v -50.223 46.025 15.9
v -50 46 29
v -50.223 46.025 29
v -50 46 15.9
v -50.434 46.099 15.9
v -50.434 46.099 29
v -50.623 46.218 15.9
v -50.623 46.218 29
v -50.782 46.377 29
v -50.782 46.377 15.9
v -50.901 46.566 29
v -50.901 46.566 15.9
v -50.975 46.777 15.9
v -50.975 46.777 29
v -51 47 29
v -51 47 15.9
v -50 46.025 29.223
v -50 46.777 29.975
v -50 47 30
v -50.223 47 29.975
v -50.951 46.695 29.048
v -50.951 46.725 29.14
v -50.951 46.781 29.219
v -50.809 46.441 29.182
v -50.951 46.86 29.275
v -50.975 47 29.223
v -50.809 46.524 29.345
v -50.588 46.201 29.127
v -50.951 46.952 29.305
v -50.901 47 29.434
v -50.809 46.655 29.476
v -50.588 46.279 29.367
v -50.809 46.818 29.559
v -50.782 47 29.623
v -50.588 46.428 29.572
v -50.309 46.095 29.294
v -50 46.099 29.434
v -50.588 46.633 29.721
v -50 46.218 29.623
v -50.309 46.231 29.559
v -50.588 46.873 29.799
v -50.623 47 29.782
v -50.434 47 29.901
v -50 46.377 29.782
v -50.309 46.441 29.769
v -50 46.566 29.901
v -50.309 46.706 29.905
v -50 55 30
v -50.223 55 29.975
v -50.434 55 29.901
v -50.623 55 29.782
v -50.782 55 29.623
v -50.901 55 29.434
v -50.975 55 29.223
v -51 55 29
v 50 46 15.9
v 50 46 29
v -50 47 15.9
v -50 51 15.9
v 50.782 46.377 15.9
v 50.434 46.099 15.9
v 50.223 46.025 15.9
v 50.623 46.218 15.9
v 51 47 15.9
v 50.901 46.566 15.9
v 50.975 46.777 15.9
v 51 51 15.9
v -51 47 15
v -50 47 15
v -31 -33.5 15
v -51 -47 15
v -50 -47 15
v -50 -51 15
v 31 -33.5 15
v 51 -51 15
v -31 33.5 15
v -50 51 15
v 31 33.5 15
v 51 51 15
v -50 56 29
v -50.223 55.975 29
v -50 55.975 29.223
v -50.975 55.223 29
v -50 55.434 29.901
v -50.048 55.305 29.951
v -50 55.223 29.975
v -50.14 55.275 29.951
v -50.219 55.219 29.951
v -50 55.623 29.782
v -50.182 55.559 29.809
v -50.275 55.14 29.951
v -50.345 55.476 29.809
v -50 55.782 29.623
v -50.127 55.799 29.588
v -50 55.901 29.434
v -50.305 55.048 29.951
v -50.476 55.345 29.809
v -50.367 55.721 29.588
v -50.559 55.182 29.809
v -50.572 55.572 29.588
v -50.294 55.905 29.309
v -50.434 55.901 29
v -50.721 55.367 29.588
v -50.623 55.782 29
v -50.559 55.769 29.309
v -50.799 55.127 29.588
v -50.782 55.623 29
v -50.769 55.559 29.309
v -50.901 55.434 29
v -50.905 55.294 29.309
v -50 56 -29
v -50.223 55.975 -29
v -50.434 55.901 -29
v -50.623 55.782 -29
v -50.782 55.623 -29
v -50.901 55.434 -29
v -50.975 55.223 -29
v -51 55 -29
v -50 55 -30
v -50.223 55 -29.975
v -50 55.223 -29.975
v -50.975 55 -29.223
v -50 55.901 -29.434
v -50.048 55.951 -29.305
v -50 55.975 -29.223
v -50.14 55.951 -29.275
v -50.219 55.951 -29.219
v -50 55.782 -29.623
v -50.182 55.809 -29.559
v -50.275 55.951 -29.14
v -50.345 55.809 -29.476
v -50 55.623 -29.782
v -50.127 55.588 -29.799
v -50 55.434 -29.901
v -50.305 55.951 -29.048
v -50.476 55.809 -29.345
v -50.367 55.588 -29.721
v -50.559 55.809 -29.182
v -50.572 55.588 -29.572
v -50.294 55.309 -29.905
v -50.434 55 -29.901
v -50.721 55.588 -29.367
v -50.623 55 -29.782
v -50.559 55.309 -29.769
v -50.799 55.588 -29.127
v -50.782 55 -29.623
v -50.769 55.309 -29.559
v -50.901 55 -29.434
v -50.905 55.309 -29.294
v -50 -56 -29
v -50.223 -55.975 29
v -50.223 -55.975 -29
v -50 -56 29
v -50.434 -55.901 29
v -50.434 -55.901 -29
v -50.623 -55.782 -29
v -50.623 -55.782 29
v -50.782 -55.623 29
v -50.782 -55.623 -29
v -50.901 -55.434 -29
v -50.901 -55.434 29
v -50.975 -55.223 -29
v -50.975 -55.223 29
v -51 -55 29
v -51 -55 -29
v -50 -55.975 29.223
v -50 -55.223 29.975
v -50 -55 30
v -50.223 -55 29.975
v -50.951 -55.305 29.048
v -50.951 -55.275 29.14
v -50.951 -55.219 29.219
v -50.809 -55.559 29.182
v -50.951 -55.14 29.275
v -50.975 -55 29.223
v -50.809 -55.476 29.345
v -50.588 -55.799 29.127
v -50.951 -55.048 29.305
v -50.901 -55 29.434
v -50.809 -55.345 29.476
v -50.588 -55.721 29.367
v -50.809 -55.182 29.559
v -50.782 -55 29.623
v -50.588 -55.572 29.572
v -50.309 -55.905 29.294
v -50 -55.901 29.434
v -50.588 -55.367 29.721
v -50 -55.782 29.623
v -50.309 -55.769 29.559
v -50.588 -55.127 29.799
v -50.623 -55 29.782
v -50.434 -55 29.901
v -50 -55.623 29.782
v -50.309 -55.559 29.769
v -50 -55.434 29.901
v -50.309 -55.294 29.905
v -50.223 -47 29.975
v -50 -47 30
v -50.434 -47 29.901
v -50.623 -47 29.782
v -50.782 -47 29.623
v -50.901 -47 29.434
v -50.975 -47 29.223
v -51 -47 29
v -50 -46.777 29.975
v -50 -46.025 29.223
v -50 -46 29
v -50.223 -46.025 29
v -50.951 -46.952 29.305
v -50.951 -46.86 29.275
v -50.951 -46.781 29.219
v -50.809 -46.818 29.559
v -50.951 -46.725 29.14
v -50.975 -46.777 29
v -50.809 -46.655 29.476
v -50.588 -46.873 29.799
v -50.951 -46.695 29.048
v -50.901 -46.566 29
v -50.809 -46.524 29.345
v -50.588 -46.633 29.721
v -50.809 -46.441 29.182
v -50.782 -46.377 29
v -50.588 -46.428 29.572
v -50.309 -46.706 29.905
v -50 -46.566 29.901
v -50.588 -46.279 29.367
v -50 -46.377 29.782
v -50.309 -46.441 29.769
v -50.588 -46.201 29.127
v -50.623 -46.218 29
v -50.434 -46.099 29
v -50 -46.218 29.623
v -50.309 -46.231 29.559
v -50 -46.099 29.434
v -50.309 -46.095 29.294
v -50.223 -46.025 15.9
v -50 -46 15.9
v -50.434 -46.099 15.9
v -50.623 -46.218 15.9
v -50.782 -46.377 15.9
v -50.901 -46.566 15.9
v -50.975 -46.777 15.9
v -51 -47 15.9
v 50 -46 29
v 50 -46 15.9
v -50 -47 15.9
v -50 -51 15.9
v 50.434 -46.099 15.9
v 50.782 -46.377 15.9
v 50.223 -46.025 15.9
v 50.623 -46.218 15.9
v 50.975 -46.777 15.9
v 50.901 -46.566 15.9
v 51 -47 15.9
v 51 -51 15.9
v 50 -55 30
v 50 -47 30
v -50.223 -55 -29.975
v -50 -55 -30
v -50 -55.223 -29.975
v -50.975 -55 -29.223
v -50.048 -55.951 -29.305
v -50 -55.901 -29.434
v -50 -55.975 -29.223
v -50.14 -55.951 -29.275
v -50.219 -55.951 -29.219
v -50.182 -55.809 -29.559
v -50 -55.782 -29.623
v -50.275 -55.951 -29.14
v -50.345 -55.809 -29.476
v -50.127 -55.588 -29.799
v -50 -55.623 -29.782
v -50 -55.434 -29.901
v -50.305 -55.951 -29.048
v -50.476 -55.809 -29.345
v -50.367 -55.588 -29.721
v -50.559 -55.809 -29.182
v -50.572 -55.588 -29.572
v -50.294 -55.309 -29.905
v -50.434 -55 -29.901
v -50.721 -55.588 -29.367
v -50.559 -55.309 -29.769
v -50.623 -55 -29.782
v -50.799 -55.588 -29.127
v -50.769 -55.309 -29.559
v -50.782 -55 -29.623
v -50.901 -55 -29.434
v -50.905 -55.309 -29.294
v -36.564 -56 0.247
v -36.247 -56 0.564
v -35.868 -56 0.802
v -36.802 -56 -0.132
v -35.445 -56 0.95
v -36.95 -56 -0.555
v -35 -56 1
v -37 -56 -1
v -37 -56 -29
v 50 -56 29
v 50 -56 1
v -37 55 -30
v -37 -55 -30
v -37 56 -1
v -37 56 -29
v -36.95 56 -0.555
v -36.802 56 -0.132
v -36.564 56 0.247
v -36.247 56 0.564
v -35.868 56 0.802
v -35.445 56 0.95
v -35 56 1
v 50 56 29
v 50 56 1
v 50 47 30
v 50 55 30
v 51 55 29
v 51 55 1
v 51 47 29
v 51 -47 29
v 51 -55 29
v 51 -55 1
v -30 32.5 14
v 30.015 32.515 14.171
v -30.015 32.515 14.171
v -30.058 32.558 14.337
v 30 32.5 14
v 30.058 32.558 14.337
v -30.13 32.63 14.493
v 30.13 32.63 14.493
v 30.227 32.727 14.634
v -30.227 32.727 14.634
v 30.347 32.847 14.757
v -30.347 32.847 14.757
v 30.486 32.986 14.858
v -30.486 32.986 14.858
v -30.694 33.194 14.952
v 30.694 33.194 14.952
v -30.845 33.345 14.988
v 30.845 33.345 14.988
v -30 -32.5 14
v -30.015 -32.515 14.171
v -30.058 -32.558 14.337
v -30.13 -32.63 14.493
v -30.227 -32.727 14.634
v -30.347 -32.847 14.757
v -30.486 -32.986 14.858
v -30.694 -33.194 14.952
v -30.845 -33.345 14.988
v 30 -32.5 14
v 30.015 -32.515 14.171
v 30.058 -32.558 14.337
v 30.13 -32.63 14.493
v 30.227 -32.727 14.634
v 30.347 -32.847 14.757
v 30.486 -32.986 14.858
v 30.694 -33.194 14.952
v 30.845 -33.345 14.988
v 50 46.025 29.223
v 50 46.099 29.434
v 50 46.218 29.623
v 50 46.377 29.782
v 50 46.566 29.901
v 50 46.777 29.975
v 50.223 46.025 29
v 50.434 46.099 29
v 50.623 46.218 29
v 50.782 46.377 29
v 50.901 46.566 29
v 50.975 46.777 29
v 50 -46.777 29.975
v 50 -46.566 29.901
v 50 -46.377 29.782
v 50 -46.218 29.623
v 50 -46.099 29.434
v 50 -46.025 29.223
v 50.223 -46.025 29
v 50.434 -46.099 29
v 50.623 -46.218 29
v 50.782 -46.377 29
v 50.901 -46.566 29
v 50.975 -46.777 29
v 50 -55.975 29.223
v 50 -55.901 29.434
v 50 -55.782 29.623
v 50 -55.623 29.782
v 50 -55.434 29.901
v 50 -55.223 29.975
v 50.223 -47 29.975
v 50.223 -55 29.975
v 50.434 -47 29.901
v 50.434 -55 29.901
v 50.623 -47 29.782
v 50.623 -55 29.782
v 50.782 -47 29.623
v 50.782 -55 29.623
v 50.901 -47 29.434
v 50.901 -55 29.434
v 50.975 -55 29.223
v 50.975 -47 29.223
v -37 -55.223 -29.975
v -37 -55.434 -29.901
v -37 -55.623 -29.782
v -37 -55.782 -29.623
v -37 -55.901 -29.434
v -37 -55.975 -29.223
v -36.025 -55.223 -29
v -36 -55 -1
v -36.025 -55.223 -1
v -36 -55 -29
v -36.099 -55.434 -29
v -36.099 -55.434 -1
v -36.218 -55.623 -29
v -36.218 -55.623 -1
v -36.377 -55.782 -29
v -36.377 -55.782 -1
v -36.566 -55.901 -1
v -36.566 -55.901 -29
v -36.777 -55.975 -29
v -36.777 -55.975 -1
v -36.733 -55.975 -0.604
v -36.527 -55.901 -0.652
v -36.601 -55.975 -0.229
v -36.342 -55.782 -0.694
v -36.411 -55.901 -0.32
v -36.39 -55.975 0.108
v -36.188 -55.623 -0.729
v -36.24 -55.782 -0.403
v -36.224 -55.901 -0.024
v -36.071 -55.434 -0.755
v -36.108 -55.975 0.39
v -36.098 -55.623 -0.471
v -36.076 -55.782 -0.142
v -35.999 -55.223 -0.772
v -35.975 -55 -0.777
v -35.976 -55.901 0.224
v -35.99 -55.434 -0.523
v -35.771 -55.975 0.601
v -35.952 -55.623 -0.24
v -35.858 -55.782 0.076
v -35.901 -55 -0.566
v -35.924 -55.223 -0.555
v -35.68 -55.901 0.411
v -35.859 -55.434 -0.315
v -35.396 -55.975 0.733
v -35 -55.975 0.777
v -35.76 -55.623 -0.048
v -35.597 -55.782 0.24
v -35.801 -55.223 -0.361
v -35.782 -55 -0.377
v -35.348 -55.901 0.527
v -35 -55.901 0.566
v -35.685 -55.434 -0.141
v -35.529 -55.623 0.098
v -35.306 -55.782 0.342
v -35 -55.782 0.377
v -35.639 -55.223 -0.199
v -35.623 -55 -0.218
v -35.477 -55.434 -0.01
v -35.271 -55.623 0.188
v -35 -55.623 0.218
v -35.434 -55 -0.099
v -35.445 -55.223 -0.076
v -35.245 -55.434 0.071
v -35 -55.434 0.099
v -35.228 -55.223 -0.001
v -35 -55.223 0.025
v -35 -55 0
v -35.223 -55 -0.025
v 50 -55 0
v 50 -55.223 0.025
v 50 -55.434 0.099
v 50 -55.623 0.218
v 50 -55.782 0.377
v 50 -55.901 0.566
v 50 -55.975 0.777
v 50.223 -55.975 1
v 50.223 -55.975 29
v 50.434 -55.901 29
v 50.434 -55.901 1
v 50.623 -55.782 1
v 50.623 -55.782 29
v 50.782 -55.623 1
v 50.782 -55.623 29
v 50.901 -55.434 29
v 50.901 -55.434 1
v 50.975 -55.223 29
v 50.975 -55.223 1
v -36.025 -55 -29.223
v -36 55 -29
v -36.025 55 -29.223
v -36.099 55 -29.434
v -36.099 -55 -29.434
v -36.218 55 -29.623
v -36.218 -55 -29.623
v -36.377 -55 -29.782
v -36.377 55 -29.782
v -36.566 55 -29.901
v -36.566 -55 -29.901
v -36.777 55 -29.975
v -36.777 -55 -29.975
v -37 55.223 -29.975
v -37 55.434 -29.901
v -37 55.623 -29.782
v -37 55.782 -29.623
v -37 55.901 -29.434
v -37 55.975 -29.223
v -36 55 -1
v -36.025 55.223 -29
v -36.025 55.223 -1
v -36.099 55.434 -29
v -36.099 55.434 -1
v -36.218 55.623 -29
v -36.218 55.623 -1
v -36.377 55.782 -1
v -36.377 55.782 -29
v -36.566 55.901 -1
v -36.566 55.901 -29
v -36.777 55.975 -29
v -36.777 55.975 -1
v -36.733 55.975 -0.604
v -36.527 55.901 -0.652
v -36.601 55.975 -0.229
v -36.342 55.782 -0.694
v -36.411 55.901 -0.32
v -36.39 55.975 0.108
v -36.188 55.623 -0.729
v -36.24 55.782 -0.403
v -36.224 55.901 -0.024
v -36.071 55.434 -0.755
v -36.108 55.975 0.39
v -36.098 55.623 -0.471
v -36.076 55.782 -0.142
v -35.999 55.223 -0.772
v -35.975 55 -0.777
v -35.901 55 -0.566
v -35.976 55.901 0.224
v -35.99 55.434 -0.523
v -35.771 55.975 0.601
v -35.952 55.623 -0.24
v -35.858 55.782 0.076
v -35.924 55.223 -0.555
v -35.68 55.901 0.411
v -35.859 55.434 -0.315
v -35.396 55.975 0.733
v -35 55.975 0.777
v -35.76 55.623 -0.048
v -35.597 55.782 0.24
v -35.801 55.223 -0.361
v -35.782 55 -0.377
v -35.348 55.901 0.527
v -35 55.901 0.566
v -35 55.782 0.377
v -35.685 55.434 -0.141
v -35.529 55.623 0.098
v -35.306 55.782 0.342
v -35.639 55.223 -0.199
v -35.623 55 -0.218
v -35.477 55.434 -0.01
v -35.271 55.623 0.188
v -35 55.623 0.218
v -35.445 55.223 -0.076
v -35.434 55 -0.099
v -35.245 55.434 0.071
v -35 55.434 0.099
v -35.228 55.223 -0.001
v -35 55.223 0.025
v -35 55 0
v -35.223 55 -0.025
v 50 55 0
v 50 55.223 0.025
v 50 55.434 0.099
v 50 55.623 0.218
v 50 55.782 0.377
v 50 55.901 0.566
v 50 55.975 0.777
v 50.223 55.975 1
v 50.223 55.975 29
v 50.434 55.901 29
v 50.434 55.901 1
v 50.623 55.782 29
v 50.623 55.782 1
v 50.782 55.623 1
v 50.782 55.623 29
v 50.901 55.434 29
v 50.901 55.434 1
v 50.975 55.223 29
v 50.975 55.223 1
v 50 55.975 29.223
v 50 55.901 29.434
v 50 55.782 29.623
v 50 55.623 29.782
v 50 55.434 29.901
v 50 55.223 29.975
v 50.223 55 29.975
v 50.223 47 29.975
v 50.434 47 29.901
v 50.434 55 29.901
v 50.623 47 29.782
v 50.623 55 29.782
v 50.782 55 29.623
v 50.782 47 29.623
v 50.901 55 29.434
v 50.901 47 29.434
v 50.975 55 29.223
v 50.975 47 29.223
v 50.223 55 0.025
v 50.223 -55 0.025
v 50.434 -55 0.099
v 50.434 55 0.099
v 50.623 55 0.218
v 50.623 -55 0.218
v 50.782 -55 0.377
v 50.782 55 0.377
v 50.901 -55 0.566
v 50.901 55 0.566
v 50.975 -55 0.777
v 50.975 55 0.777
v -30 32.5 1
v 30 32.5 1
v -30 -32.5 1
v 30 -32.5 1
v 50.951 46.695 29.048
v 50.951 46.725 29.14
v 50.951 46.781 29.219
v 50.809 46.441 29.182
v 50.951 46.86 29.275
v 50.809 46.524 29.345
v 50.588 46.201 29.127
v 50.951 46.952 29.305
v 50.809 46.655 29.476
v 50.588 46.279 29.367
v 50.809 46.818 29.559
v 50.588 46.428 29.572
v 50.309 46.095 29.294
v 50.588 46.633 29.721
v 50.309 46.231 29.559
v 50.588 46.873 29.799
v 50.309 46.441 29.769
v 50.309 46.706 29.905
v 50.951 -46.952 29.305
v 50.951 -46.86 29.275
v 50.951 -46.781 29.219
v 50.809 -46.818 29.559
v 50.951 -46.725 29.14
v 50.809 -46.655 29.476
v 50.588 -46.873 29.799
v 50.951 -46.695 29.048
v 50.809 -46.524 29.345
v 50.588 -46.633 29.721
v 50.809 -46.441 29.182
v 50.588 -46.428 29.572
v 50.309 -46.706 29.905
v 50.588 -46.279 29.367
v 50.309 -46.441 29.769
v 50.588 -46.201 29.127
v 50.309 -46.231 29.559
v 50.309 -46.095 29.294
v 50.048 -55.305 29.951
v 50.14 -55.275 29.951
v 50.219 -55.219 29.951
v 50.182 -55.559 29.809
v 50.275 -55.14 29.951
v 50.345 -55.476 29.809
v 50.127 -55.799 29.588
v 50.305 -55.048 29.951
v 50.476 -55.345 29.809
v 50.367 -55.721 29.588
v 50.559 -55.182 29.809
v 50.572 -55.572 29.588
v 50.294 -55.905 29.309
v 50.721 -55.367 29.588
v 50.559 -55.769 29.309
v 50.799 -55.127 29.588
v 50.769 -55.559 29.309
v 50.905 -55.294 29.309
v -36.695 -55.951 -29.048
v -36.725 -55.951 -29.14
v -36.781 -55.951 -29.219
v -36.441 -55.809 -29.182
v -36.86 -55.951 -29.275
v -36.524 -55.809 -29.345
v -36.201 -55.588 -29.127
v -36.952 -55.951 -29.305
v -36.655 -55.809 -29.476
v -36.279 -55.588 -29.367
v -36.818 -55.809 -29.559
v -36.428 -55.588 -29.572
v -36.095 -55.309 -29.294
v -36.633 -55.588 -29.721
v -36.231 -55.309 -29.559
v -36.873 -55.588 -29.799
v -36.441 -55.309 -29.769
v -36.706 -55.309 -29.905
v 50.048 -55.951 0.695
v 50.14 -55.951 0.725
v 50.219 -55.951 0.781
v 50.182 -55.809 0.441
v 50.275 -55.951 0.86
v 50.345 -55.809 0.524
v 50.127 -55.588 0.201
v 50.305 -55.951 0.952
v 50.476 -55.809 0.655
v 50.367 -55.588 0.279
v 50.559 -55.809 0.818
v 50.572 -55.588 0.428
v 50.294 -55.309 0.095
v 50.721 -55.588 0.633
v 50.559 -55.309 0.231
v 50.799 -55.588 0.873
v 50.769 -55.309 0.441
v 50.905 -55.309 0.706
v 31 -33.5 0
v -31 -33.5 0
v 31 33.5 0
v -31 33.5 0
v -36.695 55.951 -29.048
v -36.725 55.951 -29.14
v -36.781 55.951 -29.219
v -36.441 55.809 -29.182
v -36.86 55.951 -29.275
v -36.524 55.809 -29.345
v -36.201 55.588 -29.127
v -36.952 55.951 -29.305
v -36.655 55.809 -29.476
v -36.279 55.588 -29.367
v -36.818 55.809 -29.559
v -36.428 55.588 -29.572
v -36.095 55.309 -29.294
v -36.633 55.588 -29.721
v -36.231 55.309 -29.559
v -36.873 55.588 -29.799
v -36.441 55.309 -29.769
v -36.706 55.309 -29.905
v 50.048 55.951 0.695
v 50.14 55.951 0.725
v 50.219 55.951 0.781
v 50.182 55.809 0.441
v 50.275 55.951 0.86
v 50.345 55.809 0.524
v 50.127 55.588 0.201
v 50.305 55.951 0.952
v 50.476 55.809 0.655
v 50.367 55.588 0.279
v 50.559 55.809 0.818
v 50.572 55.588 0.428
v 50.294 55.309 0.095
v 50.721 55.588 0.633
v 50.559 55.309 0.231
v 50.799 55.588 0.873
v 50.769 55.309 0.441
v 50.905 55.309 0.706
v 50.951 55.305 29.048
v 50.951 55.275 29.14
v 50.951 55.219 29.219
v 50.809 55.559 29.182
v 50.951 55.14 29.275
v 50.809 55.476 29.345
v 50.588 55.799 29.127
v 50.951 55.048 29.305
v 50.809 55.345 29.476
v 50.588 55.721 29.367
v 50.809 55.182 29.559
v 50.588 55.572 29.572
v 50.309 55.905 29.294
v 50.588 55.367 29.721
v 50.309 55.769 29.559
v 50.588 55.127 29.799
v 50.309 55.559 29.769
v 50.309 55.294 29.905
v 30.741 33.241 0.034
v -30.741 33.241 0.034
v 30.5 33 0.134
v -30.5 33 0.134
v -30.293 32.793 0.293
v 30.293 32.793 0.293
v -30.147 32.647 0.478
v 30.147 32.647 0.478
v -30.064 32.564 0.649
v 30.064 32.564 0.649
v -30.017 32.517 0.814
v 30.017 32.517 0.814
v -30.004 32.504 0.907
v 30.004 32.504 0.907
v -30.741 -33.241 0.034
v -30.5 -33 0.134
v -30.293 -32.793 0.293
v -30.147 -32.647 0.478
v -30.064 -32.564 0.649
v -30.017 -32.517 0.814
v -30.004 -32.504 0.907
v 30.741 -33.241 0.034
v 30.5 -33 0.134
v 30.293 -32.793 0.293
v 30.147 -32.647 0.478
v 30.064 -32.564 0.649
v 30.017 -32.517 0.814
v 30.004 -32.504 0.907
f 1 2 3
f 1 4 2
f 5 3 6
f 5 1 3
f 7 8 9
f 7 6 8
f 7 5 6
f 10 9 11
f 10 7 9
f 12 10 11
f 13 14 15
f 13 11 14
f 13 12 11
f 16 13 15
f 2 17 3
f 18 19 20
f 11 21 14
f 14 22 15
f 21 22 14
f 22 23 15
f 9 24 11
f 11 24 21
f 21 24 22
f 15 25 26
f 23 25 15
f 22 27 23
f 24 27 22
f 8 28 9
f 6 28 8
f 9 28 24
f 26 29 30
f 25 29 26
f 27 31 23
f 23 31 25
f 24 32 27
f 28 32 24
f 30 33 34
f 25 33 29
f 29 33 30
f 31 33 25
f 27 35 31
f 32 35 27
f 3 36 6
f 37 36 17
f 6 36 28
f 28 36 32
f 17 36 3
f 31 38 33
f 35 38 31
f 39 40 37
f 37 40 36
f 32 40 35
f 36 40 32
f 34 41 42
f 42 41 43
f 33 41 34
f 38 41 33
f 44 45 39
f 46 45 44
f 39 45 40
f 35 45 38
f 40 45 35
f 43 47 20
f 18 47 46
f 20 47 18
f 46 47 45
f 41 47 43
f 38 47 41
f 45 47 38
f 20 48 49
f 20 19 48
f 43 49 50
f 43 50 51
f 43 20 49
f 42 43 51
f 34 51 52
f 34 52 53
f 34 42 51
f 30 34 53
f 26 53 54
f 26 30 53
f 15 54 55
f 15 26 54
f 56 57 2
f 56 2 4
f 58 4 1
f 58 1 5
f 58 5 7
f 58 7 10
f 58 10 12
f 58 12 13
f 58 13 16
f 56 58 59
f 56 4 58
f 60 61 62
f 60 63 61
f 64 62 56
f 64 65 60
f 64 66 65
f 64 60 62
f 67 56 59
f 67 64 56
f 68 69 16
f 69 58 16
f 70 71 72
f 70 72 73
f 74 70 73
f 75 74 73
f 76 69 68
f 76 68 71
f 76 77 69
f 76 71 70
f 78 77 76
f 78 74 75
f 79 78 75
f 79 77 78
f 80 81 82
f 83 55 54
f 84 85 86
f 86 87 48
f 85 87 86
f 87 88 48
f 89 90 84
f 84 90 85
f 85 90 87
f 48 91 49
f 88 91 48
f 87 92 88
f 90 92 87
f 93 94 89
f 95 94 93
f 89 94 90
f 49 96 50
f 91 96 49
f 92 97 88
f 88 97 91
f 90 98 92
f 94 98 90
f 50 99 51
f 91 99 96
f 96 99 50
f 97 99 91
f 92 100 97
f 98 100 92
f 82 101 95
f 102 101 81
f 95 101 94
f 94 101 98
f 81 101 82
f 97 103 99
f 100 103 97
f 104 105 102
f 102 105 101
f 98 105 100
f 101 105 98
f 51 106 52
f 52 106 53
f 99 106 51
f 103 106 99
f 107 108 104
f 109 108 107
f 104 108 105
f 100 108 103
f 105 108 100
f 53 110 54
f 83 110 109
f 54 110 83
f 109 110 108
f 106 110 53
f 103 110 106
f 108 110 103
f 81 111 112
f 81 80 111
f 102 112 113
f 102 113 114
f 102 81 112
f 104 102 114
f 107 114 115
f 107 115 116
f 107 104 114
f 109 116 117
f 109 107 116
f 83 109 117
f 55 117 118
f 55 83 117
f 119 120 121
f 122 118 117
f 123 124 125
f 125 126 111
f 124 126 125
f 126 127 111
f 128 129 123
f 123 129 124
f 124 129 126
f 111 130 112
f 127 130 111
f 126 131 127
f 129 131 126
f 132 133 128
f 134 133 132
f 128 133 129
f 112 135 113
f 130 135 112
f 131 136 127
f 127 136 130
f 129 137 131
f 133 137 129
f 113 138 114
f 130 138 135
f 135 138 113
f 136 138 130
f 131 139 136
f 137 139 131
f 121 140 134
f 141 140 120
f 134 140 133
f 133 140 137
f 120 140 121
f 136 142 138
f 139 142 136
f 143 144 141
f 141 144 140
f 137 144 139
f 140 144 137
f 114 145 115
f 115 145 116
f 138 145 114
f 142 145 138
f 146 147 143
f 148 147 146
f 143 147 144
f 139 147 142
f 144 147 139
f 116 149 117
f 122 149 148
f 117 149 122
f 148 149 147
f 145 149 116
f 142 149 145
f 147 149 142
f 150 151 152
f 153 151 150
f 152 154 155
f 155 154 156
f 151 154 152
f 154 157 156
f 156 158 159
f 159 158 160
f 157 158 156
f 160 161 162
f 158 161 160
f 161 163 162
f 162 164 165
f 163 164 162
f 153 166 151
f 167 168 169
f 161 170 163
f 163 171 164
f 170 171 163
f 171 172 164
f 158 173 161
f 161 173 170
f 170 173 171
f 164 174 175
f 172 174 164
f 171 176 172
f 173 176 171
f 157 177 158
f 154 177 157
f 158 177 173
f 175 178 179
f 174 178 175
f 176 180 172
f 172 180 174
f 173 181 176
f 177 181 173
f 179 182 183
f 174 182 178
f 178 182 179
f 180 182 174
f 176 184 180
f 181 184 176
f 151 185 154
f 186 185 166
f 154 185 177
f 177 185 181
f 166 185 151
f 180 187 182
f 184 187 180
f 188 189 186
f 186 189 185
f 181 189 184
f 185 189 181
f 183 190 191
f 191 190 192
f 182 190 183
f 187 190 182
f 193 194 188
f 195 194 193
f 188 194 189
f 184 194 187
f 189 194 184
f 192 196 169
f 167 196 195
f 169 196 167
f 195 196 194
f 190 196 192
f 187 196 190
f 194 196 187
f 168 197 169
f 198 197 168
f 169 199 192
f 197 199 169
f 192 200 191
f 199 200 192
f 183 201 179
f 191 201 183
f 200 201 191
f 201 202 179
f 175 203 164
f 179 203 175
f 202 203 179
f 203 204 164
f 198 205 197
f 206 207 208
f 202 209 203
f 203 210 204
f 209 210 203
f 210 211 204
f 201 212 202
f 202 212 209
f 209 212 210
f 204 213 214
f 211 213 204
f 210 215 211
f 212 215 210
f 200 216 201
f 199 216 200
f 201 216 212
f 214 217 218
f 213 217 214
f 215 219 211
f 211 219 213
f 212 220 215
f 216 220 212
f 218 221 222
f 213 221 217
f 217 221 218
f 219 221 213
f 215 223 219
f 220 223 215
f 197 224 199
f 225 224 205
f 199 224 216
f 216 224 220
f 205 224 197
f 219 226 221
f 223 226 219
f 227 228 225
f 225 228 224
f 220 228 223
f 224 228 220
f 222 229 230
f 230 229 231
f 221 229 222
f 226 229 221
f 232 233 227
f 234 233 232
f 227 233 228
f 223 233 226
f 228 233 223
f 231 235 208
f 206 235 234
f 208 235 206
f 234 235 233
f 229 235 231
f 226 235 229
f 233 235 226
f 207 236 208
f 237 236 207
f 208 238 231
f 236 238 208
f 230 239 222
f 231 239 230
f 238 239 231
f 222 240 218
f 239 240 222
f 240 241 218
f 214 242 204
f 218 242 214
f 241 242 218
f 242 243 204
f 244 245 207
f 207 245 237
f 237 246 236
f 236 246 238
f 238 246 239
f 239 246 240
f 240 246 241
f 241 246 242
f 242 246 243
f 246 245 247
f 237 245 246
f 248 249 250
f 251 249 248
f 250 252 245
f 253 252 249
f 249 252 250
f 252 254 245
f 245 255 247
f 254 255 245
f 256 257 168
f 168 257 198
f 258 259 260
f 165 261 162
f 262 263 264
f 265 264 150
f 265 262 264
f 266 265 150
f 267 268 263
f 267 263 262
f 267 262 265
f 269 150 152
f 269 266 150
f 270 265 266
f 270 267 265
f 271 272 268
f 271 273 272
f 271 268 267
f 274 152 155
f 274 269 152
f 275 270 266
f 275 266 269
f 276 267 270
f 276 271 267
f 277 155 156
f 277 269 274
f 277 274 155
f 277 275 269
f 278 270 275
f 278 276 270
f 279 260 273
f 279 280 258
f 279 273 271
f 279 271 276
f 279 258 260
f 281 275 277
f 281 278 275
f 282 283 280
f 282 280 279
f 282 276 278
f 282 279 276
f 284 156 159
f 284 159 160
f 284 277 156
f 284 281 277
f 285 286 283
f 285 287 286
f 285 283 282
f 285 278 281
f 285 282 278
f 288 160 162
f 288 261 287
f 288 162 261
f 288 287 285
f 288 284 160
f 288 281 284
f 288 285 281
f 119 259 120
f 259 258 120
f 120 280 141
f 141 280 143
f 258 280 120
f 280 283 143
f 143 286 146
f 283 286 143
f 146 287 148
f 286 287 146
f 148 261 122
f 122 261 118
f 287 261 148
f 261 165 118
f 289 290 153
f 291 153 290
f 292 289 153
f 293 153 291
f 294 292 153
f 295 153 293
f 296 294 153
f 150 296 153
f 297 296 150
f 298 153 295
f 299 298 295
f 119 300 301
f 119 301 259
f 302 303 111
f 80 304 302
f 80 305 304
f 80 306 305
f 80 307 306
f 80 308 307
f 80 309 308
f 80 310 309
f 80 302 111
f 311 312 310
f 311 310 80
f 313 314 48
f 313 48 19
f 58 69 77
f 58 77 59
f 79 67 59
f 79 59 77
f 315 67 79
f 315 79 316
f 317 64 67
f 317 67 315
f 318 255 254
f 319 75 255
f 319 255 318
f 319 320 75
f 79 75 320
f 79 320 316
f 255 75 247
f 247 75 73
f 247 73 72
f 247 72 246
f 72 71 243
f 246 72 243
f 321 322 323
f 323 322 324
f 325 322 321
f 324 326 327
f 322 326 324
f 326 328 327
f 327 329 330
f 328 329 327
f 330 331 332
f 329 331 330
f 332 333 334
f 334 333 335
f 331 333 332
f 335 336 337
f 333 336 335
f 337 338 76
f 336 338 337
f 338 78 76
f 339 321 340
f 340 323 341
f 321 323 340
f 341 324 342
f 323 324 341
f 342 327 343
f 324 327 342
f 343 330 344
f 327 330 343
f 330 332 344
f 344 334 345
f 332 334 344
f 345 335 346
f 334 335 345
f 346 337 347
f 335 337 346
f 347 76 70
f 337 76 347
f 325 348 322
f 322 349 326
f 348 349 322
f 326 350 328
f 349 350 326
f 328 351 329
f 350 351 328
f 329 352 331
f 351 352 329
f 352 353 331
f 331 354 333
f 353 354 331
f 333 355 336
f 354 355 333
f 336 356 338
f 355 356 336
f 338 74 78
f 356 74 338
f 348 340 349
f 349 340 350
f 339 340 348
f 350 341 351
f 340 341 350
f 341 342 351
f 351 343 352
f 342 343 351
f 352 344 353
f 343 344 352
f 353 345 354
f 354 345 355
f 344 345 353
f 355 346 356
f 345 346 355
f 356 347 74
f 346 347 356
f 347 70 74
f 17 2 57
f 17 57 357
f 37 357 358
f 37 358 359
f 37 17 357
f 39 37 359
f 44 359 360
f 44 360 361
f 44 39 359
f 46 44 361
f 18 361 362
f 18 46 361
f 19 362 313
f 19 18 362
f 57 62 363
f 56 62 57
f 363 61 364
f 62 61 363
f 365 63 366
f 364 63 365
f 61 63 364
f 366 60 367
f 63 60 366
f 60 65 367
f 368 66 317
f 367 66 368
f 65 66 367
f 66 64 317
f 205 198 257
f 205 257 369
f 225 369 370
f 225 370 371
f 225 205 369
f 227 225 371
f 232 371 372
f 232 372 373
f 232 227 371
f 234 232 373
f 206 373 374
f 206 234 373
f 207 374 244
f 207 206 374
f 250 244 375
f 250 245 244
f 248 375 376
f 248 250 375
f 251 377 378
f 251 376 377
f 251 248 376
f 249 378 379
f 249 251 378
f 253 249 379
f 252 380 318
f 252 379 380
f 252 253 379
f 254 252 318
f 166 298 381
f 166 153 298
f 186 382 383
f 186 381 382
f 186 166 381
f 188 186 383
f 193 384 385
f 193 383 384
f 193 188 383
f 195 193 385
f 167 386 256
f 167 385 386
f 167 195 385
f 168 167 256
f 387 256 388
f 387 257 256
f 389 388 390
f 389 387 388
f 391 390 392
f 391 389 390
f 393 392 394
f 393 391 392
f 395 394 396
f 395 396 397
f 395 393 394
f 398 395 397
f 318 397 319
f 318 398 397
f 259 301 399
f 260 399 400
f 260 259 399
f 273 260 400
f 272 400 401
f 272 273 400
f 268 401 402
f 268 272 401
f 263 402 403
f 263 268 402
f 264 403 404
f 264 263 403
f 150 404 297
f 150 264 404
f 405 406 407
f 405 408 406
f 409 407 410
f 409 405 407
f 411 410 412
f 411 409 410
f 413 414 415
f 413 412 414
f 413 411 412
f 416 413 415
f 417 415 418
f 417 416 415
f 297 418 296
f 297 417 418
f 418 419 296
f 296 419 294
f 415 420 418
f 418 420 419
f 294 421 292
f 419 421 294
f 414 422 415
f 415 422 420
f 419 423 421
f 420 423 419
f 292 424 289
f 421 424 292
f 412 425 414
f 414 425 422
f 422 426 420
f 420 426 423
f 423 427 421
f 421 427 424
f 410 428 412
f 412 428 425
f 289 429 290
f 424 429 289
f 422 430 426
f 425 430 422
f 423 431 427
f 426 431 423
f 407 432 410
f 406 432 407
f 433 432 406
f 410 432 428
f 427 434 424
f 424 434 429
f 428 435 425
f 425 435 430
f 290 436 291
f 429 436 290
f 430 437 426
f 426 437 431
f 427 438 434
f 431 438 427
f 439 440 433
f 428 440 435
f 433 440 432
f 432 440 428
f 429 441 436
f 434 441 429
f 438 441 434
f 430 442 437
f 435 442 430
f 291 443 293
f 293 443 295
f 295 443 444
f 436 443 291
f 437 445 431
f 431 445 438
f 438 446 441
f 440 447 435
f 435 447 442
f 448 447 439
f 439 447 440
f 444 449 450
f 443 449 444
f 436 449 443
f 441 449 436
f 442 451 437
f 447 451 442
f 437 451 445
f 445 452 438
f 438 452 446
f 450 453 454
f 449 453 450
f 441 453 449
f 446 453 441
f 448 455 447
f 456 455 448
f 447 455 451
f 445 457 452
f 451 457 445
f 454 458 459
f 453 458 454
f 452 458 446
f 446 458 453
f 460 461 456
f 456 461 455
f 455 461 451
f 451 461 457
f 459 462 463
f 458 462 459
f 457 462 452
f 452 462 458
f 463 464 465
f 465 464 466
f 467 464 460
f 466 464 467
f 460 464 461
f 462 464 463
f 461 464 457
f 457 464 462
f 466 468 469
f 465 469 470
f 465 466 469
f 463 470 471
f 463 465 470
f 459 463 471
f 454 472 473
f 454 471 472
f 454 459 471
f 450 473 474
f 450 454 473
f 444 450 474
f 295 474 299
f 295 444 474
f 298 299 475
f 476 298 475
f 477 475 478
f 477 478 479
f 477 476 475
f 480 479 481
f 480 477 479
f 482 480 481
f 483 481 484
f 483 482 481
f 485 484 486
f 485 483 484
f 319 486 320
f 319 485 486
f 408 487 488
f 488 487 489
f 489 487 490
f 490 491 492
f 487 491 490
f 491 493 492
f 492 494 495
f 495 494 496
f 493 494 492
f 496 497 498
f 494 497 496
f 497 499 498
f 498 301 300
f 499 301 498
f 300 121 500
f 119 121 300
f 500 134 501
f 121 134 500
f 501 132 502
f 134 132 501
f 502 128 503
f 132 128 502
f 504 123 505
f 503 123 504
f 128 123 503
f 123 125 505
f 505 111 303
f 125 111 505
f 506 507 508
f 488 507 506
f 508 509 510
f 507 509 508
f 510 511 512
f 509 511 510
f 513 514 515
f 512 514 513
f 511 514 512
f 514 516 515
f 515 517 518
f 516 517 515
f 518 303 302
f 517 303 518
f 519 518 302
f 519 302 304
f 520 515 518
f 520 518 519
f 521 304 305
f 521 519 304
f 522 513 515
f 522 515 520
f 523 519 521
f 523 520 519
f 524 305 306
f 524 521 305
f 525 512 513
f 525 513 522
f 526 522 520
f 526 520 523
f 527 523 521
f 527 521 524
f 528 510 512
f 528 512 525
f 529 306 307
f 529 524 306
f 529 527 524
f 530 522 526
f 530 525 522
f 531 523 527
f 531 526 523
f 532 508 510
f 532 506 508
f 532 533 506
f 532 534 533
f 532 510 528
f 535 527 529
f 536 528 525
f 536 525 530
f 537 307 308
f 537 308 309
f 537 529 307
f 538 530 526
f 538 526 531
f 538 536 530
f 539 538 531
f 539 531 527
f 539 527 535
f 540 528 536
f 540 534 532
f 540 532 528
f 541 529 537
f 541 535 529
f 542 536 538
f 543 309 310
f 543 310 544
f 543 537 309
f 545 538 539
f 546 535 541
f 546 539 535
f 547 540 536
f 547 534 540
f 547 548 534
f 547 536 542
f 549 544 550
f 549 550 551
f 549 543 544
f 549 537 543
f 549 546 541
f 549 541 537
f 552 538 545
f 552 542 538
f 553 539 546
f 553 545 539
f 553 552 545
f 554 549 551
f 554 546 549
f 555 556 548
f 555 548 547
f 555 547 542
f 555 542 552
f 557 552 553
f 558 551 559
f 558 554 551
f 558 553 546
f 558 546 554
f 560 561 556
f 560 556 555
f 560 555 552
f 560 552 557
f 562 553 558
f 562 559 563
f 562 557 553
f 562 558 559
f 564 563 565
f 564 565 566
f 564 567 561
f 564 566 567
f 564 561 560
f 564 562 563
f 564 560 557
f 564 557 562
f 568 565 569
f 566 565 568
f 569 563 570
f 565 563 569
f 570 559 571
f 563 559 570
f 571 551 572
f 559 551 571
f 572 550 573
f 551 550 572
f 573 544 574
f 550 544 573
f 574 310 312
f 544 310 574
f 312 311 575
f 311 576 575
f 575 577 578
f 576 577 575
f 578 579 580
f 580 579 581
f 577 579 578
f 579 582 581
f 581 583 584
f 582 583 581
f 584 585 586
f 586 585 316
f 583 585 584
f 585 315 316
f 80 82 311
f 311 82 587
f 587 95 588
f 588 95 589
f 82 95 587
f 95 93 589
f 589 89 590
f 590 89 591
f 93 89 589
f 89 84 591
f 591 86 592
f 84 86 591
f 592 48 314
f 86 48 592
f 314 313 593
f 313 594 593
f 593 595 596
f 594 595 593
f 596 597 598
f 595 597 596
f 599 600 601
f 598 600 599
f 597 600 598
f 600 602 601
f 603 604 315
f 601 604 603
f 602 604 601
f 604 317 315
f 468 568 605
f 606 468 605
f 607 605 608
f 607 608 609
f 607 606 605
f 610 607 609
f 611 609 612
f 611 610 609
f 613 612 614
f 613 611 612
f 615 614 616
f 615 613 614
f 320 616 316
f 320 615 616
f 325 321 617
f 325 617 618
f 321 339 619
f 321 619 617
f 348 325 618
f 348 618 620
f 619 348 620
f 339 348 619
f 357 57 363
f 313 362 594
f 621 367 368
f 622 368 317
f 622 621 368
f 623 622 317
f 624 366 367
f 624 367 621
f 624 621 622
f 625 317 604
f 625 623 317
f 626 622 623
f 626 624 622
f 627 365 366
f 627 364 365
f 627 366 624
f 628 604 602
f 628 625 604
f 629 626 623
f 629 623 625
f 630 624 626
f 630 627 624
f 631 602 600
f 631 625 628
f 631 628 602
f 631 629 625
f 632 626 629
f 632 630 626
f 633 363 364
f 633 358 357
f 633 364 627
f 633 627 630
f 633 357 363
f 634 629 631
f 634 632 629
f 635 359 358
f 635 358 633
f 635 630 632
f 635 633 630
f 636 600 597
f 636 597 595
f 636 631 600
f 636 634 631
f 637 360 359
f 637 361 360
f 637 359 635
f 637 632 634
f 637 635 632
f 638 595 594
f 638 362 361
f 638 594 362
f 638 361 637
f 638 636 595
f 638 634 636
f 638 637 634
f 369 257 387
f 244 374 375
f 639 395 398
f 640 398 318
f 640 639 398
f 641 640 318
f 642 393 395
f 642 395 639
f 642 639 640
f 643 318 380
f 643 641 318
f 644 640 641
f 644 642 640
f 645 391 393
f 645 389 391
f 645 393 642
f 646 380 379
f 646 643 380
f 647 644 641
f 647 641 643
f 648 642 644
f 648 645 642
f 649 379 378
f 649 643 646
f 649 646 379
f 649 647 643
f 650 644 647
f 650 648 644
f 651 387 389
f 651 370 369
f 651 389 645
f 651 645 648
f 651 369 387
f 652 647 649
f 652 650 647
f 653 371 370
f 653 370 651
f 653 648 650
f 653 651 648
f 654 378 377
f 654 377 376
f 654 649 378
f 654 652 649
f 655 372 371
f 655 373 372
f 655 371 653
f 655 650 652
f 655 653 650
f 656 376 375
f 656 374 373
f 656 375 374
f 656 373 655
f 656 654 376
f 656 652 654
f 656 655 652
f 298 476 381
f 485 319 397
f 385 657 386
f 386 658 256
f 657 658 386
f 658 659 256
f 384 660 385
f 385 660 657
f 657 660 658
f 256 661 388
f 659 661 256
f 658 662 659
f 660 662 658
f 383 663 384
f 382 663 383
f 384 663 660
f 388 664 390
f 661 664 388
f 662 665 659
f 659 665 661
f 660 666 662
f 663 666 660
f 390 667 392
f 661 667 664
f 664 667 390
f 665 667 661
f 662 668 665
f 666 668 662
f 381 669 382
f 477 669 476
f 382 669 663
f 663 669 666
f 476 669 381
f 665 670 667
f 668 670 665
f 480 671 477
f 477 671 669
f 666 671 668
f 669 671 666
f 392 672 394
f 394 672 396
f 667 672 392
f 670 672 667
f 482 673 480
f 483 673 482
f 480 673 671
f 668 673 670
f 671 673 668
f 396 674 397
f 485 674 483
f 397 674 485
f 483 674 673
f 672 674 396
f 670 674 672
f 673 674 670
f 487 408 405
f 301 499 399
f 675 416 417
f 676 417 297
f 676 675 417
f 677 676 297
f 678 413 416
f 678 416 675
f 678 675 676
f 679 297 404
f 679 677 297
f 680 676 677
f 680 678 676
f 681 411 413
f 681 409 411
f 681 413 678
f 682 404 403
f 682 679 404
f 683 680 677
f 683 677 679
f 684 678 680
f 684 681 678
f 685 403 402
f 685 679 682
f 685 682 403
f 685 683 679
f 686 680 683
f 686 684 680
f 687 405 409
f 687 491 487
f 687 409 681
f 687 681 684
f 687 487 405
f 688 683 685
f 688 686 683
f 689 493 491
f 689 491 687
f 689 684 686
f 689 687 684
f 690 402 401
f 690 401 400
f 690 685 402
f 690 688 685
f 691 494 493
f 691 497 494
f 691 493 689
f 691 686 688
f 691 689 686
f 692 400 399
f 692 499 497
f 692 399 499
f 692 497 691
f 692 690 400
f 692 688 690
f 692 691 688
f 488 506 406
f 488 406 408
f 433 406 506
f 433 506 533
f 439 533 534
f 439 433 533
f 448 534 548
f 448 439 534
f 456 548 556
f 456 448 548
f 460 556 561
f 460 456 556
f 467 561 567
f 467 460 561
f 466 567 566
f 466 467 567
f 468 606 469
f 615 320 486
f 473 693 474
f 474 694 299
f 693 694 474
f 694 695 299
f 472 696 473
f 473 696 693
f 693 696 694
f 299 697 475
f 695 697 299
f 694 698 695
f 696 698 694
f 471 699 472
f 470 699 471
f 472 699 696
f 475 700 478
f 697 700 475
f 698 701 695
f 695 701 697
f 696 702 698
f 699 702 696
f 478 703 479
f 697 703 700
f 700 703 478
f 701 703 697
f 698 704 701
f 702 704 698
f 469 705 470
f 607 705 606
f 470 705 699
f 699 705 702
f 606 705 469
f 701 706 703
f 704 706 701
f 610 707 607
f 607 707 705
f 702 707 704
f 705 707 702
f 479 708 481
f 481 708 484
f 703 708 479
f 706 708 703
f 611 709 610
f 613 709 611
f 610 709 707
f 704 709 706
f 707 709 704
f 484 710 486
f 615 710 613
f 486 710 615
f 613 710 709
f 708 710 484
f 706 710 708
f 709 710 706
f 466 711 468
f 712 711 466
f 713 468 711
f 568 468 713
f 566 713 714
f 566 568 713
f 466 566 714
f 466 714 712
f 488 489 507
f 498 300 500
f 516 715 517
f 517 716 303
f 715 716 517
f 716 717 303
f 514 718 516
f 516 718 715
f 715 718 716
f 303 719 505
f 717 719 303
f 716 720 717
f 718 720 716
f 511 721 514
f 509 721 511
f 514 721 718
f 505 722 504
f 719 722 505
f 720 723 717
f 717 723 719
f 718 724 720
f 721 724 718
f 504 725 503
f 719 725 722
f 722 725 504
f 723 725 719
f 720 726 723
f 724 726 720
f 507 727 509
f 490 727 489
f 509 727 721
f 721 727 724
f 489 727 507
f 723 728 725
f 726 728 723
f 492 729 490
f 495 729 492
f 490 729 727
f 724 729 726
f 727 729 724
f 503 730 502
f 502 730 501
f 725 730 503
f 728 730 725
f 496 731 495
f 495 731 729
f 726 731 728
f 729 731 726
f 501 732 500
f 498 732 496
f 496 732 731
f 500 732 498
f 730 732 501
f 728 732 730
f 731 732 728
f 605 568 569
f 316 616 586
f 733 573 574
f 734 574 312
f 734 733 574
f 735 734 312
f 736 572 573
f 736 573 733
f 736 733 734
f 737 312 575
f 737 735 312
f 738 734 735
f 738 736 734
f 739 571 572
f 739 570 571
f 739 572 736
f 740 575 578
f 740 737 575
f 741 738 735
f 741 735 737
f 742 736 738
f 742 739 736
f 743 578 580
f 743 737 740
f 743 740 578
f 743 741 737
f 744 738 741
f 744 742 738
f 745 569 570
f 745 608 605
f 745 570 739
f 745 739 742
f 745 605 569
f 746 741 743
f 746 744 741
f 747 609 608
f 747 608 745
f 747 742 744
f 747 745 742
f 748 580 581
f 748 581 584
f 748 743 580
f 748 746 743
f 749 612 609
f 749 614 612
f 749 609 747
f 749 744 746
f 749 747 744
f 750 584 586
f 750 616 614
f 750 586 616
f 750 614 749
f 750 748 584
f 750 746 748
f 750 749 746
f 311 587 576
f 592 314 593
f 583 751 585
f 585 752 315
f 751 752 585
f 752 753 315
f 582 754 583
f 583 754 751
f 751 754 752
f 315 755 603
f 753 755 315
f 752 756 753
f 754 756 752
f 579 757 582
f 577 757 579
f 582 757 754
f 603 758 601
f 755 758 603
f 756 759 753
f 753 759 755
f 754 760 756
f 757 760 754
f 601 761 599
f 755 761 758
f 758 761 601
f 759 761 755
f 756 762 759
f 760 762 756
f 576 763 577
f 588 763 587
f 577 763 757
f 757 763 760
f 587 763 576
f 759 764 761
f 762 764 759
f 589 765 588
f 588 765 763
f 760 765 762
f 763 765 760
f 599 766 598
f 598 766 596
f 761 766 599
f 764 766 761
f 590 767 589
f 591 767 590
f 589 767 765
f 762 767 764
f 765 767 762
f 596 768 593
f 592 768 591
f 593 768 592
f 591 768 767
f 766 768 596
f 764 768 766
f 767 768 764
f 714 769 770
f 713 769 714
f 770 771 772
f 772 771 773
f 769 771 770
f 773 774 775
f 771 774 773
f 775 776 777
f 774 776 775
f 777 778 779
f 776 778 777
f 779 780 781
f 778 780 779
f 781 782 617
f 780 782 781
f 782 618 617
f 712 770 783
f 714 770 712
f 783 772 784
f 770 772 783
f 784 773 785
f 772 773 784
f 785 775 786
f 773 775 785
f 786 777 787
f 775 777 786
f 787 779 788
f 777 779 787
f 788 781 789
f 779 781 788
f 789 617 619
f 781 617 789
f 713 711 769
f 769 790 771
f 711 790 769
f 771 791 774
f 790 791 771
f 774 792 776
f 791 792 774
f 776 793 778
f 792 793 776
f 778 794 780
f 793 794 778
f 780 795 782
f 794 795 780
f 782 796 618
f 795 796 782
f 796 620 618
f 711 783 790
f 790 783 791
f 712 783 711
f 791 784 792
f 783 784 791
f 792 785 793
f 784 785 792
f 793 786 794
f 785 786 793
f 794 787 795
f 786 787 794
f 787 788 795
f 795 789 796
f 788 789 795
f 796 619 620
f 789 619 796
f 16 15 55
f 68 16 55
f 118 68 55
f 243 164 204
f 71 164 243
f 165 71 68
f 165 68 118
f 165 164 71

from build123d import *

# Parameters (mm, degrees)
BOX_W            = 1
BOX_H            = 4
BOX_DEPTH        = 3
BOX001_W         = 1
BOX001_H         = 4
BOX001_DEPTH     = 3
SKETCH003_W      = 60
SKETCH003_H      = 65
EXTRUDE003_DEPTH = 15
EXTRUDE001_DEPTH = 51
SKETCH_W         = 102
SKETCH_H         = 102
EXTRUDE_DEPTH    = 15
SKETCH002_W      = 15
SKETCH002_H      = 30
EXTRUDE002_DEPTH = 56
FILLET_R         = 1
FILLET001_R      = 1


with BuildPart() as cube:
    # Box → Box (new body)
    with BuildSketch(Plane(origin=(-51, 47, 14.7), x_dir=(1, 0, 0), z_dir=(0, 0, 1))):
        with Locations((0.5, 2)):
            Rectangle(BOX_W, BOX_H)
    extrude(amount=BOX_DEPTH)


with BuildPart() as cube001:
    # Box001 → Box001 (new body)
    with BuildSketch(Plane(origin=(-51, -51, 14.7), x_dir=(1, 0, 0), z_dir=(0, 0, 1))):
        with Locations((0.5, 2)):
            Rectangle(BOX001_W, BOX001_H)
    extrude(amount=BOX001_DEPTH)


with BuildPart() as extrude003:
    # Sketch003 (on Face42 of Fillet) → Extrude003 (new body)
    with BuildSketch(Plane.XY.offset(15)):
        Rectangle(SKETCH003_W, SKETCH003_H)
    extrude(amount=-EXTRUDE003_DEPTH)


with BuildPart() as extrude001:
    # Sketch001 (on Sketch) → Extrude001 (new body, symmetric)
    with BuildSketch(Plane.YZ):
        Polygon((-56, 0), (-56, 30), (-46, 30), (-46, 15.9), (-51, 15.9), (-51, 15), (-46, 15), (-46, 0), align=None)
        Polygon((56, 0), (56, 30), (46, 30), (46, 15.9), (51, 15.9), (51, 15), (46, 15), (46, 0), align=None)
    extrude(amount=EXTRUDE001_DEPTH, both=True)


with BuildPart() as fusion:
    # Sketch → Extrude (new body)
    with BuildSketch(Plane.XY):
        Rectangle(SKETCH_W, SKETCH_H)
    extrude(amount=EXTRUDE_DEPTH)

    # Fusion: union Extrude001
    add(extrude001.part)


with BuildPart() as fusion002:
    # Sketch002 → Extrude002 (new body, symmetric)
    with BuildSketch(Plane.XZ):
        with Locations((-43.5, -15)):
            Rectangle(SKETCH002_W, SKETCH002_H)
    extrude(amount=EXTRUDE002_DEPTH, both=True)

    # Fusion001: union Fusion
    add(fusion.part)

    # Fillet
    fillet_edges = [fusion002.edges().sort_by_distance(p)[0] for p in [
        (-36, 0, 0),
        (-36, 0, -30),
        (-36, 56, -15),
        (-36, -56, -15),
        (-51, 0, -30),
        (-43.5, 56, -30),
        (-43.5, -56, -30),
        (51, 0, 0),
        (7.5, -56, 0),
        (7.5, 56, 0),
        (-51, 56, 0),
        (0, 56, 30),
        (51, 56, 15),
        (0, 46, 30),
        (51, 46, 22.95),
        (-51, 46, 22.95),
        (51, 51, 30),
        (-51, 51, 30),
        (51, -56, 15),
        (0, -56, 30),
        (-51, -56, 0),
        (0, -46, 30),
        (51, -51, 30),
        (-51, -51, 30),
        (51, -46, 22.95),
        (-51, -46, 22.95),
    ]]
    fillet(fillet_edges, radius=FILLET_R)

    # Cut: cut Extrude003
    add(extrude003.part, mode=Mode.SUBTRACT)

    # Fillet001
    fillet001_edges = [fusion002.edges().sort_by_distance(p)[0] for p in [
        (0, 32.5, 0),
        (30, 0, 0),
        (0, -32.5, 0),
        (-30, 0, 0),
        (0, 32.5, 15),
        (30, 0, 15),
        (0, -32.5, 15),
        (-30, 0, 15),
    ]]
    fillet(fillet001_edges, radius=FILLET001_R)

    # Fusion002: union Cube, Cube001
    add(cube.part)
    add(cube001.part)


solid = fusion002.part
